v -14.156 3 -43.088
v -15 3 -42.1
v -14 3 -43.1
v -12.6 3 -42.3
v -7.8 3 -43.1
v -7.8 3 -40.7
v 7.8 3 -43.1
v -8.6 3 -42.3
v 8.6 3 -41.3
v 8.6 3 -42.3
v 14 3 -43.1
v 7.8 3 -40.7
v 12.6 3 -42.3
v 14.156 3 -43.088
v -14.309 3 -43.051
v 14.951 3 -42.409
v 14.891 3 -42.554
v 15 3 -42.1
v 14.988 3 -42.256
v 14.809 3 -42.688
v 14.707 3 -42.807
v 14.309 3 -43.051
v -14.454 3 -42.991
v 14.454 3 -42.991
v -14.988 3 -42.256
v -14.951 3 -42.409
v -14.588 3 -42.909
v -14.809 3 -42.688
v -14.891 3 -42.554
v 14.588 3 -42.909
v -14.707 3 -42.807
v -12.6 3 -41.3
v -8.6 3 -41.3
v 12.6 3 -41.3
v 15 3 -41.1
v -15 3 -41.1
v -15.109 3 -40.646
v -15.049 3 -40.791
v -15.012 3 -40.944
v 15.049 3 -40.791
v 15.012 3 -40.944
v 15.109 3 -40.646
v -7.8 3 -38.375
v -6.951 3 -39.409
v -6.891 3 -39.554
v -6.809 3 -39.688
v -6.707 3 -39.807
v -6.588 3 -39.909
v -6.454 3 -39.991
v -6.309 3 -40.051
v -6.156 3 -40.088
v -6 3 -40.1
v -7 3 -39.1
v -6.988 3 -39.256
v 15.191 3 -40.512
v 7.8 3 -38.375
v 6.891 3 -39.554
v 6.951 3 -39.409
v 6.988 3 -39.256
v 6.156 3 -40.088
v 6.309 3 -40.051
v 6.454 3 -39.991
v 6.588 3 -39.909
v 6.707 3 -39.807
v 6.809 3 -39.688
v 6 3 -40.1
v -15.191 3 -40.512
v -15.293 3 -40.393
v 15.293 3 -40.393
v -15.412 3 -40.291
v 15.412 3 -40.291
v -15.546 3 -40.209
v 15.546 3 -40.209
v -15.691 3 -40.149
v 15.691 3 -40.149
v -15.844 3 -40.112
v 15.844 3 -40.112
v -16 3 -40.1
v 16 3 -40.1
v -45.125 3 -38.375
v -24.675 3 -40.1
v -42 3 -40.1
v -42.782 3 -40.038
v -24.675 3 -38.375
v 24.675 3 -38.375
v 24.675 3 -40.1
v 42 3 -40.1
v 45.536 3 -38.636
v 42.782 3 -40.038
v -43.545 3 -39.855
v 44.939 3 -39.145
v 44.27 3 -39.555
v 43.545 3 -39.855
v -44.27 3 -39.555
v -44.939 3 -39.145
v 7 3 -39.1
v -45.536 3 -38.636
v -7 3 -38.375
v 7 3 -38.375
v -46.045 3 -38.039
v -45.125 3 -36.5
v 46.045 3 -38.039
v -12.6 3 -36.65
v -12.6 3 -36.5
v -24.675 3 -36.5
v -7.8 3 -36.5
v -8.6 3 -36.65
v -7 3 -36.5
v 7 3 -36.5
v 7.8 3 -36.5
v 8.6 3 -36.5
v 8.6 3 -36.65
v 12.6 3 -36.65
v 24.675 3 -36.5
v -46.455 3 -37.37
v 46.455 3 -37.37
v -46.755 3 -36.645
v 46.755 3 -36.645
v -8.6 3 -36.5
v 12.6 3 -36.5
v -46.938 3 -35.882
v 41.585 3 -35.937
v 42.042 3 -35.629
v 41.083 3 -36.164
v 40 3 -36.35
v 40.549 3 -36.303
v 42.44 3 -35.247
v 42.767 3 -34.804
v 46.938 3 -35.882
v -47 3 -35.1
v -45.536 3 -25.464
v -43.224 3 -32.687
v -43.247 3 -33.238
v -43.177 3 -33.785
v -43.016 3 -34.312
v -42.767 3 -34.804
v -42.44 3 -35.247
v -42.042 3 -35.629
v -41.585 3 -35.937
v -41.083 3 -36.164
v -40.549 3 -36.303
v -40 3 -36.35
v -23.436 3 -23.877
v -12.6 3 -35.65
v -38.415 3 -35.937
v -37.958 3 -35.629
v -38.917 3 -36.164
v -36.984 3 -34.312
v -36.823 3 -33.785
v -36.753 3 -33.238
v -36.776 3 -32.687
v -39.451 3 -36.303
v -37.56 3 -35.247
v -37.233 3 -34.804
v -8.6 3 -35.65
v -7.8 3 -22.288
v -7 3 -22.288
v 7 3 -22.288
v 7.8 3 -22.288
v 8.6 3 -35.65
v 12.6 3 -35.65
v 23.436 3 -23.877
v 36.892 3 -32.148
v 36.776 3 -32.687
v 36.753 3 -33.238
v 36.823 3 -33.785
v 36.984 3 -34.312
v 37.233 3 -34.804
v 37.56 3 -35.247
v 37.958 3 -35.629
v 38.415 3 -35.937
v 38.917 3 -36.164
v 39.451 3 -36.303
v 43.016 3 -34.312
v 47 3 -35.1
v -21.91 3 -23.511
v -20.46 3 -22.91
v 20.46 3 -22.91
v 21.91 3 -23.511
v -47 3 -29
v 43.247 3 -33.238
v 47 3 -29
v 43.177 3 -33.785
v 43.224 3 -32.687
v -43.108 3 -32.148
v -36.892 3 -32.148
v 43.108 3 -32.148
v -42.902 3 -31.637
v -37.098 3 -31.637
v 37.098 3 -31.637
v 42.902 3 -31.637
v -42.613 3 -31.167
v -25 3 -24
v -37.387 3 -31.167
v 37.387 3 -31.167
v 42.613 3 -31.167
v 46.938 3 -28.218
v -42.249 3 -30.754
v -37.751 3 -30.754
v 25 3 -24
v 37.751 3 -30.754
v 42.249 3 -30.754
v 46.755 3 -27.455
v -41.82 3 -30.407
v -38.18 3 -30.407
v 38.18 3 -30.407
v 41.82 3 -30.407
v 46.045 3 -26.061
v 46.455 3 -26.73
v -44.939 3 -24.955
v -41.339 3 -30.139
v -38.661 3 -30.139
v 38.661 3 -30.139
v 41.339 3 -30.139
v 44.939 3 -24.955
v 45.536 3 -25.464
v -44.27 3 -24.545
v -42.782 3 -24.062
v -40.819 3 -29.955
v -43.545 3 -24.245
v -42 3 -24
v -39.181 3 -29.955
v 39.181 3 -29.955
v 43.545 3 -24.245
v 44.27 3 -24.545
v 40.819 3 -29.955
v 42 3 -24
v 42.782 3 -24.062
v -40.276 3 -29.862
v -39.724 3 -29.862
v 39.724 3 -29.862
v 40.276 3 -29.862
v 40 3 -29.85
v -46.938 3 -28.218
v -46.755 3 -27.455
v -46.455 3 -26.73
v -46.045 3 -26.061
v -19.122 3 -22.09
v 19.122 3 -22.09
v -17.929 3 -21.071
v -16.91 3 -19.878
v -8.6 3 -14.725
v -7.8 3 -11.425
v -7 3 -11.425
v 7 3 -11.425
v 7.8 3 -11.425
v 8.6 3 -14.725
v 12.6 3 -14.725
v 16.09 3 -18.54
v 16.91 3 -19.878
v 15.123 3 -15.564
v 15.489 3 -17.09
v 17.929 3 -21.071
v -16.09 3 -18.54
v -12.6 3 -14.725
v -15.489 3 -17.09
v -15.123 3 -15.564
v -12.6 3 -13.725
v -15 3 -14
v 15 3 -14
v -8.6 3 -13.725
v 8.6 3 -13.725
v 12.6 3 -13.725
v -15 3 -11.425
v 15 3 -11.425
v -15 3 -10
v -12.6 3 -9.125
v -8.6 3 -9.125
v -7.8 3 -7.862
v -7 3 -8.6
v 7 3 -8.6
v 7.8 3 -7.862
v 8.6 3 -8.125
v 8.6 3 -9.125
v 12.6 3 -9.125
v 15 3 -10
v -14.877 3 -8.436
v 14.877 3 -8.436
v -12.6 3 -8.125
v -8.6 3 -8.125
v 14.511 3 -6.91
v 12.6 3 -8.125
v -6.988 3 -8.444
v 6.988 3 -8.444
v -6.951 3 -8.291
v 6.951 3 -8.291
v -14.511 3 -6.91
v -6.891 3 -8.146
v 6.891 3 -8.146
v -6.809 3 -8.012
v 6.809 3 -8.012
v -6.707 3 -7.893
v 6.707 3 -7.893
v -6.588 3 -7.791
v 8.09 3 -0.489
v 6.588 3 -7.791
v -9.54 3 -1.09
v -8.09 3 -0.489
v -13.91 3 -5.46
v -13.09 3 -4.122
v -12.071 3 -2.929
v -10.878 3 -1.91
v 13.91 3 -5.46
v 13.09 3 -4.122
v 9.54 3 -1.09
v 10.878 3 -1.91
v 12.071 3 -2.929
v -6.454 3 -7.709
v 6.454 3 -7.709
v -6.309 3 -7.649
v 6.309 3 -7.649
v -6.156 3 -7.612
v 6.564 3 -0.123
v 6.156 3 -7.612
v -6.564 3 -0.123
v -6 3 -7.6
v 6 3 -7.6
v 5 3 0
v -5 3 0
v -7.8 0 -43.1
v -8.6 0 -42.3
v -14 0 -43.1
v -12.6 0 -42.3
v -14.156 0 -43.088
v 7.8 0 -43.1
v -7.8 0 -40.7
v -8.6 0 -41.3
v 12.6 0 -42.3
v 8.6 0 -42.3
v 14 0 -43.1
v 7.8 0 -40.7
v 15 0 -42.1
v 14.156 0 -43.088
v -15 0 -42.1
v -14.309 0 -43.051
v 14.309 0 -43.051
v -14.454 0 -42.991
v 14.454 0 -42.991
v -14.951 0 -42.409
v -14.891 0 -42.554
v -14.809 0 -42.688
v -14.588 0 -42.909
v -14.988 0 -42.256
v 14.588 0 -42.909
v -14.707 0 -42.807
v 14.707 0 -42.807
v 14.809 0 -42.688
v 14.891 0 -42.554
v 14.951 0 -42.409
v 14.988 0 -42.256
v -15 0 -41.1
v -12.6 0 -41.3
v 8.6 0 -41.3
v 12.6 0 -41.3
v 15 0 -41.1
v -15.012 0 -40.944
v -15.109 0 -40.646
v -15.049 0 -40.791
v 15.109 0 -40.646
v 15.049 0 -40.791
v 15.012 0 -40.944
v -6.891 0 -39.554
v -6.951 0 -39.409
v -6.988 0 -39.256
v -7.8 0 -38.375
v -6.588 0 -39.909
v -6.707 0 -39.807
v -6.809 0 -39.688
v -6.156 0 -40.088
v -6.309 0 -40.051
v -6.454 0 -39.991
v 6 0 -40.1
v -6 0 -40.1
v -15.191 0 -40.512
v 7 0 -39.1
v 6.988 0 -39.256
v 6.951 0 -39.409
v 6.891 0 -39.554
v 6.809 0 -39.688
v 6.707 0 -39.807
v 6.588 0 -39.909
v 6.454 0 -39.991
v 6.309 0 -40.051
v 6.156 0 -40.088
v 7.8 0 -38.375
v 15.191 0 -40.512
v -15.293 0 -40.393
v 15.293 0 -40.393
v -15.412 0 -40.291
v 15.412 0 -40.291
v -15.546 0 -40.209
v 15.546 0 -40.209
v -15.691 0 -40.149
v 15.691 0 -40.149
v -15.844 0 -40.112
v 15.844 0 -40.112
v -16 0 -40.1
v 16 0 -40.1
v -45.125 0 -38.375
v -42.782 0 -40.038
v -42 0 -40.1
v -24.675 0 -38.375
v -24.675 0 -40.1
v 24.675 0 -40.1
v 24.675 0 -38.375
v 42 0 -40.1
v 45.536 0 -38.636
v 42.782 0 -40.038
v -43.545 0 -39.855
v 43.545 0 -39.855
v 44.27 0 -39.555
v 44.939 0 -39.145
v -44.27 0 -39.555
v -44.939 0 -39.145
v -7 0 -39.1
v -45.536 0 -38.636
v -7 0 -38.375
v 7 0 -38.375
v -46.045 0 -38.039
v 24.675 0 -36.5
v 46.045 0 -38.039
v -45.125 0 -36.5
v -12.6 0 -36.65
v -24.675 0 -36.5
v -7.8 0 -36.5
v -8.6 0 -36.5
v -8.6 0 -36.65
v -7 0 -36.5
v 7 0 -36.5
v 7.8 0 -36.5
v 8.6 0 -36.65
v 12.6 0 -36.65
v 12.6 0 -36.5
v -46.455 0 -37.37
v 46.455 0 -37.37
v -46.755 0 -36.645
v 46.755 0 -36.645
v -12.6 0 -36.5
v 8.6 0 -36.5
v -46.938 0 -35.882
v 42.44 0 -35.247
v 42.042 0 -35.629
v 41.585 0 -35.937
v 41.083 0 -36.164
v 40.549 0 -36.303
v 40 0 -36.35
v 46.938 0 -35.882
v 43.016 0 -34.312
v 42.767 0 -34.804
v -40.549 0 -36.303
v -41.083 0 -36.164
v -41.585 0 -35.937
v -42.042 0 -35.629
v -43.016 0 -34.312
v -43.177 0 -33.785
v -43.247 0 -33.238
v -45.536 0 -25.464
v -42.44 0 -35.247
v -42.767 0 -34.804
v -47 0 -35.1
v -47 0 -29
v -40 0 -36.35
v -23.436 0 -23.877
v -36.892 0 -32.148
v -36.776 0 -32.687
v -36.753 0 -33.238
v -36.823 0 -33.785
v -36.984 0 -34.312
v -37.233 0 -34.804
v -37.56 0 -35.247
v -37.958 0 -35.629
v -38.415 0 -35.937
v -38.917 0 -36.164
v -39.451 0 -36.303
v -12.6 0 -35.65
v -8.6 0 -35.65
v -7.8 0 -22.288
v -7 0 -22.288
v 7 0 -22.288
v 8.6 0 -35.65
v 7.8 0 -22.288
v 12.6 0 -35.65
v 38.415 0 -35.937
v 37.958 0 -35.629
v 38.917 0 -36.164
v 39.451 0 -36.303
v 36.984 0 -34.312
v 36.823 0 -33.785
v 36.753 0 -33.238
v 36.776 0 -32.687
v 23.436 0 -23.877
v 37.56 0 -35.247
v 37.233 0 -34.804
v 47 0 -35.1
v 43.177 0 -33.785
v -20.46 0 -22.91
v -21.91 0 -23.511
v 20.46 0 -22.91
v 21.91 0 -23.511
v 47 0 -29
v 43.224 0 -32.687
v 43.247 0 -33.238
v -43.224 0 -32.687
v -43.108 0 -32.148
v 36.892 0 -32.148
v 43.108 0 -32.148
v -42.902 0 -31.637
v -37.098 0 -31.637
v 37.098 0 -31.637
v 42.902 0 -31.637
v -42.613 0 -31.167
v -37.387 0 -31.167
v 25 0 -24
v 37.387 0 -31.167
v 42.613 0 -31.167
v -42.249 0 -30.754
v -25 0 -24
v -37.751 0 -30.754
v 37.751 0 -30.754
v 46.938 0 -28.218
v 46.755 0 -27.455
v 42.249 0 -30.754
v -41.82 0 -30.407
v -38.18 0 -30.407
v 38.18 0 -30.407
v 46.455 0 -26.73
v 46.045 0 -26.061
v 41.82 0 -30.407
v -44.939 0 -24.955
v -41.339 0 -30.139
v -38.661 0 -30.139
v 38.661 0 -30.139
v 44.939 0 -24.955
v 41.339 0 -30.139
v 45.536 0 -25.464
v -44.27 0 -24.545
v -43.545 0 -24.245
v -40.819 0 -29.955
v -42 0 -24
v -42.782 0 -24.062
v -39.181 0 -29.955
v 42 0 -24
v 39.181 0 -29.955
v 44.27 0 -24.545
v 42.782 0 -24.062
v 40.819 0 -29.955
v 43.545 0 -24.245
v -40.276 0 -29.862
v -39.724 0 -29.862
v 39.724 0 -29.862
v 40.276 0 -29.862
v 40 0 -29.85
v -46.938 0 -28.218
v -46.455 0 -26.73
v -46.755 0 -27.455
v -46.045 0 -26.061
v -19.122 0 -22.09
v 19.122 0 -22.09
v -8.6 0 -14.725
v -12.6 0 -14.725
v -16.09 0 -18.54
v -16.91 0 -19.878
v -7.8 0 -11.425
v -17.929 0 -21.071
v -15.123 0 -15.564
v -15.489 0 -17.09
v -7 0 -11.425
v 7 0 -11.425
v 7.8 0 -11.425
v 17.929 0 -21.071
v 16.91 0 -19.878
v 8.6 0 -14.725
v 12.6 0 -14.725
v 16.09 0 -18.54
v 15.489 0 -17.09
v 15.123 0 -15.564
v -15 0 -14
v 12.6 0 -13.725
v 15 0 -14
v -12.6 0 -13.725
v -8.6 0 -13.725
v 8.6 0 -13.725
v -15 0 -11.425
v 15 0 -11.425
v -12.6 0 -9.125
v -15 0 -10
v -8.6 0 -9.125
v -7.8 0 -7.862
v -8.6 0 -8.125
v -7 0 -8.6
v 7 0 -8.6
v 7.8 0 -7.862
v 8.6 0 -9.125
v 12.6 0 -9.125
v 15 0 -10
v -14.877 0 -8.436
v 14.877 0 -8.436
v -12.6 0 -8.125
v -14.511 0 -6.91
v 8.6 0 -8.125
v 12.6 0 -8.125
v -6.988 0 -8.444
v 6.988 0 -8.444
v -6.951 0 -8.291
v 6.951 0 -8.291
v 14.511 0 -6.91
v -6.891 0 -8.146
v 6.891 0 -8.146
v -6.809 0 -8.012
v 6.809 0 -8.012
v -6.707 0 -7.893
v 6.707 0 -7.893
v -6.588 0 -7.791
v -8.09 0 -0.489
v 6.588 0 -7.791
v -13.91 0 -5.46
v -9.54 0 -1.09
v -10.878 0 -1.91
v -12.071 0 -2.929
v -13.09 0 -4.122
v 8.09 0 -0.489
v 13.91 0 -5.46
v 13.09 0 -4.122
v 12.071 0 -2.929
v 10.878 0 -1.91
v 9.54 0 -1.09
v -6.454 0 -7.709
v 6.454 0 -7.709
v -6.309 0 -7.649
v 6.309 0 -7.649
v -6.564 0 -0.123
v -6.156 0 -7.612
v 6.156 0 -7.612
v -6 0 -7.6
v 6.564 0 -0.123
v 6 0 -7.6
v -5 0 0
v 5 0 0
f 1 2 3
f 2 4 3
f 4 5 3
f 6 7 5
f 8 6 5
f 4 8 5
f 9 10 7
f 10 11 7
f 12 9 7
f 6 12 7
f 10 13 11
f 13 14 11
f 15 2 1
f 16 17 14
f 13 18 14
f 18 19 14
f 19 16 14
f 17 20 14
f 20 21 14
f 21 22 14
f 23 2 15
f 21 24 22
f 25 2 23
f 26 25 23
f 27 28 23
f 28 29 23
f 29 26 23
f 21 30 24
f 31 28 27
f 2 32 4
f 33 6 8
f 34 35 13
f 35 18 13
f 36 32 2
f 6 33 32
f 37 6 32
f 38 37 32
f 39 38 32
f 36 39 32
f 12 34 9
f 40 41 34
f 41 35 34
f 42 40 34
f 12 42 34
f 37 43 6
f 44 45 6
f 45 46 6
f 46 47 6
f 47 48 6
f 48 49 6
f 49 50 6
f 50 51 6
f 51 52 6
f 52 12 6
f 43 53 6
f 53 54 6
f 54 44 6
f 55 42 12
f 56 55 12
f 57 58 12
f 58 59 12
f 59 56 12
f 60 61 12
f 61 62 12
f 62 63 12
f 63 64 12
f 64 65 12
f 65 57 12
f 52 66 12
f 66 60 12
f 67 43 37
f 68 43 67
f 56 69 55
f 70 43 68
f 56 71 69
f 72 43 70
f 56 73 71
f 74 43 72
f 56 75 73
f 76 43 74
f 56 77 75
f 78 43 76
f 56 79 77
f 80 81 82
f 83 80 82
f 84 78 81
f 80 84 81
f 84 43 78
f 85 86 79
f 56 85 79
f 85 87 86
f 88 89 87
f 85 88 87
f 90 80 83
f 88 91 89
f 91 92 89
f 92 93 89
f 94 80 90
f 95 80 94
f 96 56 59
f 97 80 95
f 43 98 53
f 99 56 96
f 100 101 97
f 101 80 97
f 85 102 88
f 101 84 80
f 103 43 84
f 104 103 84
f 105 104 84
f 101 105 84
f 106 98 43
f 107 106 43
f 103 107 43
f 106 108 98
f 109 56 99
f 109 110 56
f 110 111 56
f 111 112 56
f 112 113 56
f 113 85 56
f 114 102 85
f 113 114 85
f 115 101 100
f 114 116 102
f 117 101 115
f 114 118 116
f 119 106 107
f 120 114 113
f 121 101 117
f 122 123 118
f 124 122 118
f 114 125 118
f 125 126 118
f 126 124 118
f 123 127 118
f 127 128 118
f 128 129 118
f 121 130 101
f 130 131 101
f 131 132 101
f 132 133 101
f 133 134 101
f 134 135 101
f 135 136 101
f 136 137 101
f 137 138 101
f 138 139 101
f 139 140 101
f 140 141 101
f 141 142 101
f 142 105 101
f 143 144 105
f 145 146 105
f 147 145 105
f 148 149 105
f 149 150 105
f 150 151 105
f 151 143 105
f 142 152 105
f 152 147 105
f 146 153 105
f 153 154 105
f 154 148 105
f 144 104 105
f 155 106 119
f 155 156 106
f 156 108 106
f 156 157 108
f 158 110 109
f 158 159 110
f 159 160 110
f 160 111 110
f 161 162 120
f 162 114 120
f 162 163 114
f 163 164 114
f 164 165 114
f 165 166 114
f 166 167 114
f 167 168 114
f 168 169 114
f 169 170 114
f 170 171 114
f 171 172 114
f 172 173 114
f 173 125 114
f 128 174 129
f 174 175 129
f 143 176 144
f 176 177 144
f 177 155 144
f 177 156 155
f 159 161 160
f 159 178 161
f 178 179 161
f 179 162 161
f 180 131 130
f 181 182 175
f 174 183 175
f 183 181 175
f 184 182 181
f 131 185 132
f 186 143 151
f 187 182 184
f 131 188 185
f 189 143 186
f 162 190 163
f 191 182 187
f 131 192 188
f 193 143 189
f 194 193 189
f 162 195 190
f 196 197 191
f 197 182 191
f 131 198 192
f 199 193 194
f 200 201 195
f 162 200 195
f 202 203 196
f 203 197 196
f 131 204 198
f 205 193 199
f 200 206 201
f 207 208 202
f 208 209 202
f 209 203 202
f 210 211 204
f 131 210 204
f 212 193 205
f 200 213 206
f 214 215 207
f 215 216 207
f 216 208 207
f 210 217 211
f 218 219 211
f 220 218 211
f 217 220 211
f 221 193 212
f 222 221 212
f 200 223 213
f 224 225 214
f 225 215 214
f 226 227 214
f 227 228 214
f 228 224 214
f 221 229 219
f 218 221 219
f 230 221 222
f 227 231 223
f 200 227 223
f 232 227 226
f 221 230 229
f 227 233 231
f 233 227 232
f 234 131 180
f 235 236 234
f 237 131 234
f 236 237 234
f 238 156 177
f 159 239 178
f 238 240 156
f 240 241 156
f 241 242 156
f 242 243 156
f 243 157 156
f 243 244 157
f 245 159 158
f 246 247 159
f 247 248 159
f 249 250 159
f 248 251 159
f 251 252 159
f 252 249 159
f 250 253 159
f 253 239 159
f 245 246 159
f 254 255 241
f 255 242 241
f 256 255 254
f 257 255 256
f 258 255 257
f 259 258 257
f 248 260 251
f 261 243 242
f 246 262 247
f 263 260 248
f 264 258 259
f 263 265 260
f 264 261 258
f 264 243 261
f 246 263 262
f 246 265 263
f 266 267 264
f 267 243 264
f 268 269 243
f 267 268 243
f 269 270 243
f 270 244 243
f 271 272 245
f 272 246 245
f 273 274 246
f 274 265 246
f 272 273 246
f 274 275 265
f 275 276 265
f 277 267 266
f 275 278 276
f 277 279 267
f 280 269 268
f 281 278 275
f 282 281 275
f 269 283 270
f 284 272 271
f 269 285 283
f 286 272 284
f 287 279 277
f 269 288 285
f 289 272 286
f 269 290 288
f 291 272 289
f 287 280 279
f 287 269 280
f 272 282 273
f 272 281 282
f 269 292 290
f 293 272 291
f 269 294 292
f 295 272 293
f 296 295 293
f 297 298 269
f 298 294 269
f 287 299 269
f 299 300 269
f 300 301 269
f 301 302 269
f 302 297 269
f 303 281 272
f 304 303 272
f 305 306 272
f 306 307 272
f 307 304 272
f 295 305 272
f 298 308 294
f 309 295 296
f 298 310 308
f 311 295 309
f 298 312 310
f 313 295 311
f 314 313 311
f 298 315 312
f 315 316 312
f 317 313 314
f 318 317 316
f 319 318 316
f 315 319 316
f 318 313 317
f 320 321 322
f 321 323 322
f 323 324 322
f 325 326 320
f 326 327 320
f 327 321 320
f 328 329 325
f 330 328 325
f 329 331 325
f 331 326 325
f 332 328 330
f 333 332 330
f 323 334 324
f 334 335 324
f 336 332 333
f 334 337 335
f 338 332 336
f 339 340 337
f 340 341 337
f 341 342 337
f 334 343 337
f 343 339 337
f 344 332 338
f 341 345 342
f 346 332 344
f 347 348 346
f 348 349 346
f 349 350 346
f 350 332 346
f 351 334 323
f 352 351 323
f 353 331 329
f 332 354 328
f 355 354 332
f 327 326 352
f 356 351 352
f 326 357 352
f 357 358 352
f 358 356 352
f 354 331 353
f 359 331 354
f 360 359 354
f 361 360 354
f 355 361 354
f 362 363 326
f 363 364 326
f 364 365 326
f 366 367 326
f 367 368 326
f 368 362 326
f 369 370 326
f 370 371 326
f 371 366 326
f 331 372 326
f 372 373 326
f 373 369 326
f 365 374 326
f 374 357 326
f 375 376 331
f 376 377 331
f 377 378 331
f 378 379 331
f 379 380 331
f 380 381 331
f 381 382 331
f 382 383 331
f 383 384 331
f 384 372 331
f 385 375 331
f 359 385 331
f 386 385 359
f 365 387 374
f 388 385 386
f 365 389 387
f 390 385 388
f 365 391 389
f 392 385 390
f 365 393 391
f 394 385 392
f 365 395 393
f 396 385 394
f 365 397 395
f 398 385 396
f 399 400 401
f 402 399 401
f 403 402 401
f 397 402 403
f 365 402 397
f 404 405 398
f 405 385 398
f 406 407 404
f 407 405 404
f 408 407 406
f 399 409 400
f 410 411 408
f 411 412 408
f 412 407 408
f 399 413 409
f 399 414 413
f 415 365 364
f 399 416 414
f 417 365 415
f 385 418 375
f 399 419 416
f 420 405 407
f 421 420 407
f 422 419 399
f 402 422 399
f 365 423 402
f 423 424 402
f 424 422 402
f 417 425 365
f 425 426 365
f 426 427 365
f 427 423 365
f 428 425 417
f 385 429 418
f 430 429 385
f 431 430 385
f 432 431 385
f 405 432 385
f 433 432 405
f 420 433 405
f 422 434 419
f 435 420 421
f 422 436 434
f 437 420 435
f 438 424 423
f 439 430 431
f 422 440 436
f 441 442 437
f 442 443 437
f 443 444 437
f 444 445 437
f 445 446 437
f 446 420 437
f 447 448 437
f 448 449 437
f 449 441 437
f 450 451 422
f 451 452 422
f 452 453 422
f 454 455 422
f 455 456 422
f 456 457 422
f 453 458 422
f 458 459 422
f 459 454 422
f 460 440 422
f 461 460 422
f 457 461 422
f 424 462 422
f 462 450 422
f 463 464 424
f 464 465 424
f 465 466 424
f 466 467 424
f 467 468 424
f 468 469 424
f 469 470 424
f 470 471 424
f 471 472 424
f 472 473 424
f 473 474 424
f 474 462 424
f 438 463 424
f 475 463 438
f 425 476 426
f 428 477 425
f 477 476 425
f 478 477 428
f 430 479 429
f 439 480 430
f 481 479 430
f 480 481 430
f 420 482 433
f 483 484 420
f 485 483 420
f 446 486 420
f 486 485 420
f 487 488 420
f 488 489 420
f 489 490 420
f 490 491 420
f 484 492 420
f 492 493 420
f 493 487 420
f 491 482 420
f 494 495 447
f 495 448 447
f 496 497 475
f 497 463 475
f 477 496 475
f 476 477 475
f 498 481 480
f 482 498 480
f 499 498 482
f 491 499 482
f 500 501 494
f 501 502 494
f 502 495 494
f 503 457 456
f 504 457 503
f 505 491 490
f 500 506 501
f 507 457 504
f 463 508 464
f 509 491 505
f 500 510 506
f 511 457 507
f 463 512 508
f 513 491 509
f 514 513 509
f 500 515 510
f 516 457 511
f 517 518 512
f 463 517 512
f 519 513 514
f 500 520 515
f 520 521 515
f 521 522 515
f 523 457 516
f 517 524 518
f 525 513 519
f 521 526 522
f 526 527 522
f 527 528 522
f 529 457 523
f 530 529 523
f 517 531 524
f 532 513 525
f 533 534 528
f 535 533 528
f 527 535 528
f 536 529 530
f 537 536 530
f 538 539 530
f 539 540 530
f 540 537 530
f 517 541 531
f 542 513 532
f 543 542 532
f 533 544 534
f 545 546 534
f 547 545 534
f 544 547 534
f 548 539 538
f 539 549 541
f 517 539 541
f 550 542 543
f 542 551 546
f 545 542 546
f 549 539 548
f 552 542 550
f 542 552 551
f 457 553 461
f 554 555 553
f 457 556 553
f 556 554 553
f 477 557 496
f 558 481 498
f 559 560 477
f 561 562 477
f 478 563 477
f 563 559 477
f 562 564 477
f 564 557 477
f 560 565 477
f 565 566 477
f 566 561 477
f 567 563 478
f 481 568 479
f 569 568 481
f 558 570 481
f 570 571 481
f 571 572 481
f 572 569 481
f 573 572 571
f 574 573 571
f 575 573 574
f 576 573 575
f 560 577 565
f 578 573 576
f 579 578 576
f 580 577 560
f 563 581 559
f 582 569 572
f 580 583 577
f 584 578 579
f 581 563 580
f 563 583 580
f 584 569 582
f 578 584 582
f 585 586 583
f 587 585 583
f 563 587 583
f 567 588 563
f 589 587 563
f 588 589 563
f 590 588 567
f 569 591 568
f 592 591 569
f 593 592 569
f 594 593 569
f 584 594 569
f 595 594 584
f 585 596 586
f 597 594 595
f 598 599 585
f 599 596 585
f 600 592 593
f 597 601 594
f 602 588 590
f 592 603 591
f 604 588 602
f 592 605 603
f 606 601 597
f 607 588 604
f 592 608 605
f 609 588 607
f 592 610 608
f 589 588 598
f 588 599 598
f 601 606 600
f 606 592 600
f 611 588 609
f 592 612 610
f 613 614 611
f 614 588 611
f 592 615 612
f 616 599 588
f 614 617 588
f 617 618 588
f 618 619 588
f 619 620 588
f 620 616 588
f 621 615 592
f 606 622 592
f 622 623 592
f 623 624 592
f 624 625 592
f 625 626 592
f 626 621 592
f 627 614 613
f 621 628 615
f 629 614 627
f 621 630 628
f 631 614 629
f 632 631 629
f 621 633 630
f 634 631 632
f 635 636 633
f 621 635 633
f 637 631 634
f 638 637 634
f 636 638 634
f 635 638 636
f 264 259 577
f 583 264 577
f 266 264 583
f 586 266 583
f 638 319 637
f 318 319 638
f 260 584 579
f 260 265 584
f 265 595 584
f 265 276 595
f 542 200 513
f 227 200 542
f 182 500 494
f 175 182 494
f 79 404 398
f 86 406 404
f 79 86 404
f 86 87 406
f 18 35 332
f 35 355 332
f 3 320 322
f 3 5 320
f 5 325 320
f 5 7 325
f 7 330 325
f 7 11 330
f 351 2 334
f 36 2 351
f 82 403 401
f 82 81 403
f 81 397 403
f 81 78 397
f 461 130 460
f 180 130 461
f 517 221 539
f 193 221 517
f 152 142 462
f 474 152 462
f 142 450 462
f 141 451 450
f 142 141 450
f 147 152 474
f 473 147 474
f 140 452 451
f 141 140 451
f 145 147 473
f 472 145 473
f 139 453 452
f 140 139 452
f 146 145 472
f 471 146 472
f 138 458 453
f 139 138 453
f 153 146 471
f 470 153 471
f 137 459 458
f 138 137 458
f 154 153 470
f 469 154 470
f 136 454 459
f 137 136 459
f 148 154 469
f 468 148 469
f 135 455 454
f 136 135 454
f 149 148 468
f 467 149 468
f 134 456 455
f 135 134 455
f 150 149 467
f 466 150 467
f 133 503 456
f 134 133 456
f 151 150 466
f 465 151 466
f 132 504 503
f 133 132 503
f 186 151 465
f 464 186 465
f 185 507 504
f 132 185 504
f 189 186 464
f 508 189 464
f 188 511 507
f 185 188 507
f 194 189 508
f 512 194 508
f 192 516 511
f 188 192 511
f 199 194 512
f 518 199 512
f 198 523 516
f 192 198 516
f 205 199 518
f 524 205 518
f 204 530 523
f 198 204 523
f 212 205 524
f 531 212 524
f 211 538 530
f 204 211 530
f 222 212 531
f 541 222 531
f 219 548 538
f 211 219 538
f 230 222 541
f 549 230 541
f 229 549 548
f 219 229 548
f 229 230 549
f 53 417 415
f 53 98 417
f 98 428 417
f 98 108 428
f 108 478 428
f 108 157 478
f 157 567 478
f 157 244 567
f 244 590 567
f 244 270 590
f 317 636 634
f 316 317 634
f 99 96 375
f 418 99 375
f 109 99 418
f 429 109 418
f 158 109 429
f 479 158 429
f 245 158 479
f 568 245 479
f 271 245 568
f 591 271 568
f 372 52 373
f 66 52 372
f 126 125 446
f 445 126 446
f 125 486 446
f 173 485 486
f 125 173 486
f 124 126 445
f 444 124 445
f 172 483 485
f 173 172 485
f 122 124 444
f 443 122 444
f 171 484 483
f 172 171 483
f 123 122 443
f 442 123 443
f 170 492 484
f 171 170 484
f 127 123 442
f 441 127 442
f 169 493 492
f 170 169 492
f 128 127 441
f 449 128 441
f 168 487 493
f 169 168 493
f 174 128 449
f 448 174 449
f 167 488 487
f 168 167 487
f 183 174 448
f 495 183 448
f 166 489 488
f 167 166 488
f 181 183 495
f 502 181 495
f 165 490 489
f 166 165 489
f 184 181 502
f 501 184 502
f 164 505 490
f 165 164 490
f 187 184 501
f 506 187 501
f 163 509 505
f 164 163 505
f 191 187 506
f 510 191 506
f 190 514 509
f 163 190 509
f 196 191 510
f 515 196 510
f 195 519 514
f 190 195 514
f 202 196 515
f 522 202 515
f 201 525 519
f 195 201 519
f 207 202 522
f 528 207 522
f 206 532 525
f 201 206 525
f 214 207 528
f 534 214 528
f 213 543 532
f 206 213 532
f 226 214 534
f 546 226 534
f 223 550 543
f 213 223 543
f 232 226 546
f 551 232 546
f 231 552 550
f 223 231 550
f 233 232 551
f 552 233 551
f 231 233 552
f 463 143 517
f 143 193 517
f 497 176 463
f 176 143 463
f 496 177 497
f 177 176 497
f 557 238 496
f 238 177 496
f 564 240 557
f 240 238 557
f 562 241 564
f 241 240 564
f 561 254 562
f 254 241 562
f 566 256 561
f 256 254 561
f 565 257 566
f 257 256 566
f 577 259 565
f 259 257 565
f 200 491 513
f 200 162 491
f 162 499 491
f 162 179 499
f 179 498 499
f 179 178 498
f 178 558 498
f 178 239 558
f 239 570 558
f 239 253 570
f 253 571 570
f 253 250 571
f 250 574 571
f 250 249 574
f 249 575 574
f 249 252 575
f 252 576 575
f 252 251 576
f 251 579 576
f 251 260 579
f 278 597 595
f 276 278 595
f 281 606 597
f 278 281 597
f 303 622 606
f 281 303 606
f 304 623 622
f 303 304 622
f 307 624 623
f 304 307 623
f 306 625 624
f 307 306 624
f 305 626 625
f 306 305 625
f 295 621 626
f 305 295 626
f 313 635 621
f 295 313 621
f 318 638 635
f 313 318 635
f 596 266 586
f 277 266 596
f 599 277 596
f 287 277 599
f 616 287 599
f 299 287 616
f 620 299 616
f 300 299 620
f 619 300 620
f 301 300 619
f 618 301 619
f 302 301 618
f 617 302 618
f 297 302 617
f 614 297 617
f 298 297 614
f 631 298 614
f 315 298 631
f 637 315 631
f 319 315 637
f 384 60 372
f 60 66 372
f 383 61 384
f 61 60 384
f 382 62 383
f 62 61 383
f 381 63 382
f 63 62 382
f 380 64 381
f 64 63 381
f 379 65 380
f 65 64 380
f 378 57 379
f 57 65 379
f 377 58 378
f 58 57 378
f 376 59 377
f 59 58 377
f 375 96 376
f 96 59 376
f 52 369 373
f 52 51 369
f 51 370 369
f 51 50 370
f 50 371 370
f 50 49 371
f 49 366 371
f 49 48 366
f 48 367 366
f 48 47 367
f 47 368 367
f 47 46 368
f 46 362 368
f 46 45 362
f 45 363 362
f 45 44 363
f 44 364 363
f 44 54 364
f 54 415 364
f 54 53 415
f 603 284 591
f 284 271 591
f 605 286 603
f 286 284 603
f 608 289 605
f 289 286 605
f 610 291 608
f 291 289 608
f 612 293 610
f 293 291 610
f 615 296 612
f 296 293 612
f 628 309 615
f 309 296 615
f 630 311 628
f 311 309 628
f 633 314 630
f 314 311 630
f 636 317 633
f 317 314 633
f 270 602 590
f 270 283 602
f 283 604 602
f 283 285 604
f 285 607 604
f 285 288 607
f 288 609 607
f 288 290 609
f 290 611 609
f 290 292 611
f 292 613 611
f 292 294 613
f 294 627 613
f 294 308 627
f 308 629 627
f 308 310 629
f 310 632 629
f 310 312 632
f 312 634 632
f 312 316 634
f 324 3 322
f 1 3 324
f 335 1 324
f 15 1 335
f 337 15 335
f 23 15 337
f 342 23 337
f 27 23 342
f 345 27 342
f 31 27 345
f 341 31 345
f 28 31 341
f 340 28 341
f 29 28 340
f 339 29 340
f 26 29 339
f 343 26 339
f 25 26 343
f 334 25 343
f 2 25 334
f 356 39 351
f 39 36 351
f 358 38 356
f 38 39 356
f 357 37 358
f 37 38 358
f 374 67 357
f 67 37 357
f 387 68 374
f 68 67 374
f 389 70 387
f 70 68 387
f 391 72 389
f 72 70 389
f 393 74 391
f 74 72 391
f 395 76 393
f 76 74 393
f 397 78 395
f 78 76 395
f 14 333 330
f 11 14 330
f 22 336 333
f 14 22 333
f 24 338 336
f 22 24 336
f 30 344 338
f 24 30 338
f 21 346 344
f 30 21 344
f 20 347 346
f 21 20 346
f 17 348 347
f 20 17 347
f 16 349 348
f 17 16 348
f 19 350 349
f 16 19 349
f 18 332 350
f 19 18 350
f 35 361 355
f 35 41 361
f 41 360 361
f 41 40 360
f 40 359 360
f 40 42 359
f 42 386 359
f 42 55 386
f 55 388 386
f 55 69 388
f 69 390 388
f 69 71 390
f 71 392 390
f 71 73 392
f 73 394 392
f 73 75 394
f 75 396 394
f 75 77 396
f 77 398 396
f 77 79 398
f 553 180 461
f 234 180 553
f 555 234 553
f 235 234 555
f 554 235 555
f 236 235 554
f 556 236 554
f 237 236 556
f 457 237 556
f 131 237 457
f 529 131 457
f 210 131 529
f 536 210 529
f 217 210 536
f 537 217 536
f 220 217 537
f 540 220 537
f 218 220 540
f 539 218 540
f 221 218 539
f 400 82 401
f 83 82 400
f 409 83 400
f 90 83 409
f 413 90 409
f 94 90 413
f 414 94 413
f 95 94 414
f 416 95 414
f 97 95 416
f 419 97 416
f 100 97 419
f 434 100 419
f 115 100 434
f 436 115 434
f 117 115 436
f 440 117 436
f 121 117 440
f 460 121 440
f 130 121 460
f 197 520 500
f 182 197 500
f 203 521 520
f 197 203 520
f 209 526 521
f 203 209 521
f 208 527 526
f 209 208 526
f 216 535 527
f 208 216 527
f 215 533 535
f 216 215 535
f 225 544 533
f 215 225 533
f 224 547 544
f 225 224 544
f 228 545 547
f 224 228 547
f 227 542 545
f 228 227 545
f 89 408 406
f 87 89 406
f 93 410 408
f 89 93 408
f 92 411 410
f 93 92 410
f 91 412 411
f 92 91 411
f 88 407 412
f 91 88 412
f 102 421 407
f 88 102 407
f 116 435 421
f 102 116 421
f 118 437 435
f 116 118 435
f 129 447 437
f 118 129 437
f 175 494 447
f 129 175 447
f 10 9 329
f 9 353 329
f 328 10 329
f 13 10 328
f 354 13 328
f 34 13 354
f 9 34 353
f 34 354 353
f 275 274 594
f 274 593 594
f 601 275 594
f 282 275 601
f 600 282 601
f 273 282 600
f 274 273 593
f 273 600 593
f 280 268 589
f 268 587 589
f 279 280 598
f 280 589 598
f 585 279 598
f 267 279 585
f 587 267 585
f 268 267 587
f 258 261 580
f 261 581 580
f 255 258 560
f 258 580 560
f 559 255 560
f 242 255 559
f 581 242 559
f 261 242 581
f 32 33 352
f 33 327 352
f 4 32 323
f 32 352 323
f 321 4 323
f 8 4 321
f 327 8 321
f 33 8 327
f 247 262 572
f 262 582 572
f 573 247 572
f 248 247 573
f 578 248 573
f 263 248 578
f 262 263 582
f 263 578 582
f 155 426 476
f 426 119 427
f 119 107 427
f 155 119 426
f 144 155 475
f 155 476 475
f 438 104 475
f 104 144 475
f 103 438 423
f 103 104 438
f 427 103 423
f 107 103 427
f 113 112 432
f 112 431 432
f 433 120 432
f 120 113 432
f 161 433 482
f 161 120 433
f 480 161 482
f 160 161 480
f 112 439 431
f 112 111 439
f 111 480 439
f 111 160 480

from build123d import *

# Parameters (mm, degrees)
SKETCH1_R           = 3.25
SKETCH1_W           = 14
SKETCH1_H           = 32.5
BOSS_EXTRUDE1_DEPTH = 3
FILLET1_R           = 10
FILLET2_R           = 1
FILLET3_R           = 5
CUT_EXTRUDE1_REACH  = 65.841
SKETCH2_W           = 4
SKETCH2_H           = 1


with BuildPart() as part:
    # Sketch1 → Boss-Extrude1 (new body)
    with BuildSketch(Plane(origin=(0, 0, 0), x_dir=(1, 0, 0), z_dir=(0, 1, 0))):
        Polygon((-47, 40.1), (-15, 40.1), (-15, 43.1), (15, 43.1), (15, 40.1), (47, 40.1), (47, 24), (15, 24), (15, 0), (-15, 0), (-15, 24), (-47, 24), align=None)
        with Locations(Location((40, 33.1, 0), (0, 0, 270))):
            Circle(SKETCH1_R, mode=Mode.SUBTRACT)
        with Locations(Location((-40, 33.1, 0), (0, 0, 90))):
            Circle(SKETCH1_R, mode=Mode.SUBTRACT)
        with Locations((0, 23.85)):
            Rectangle(SKETCH1_W, SKETCH1_H, mode=Mode.SUBTRACT)
    extrude(amount=BOSS_EXTRUDE1_DEPTH)

    # Fillet1
    fillet1_edges = [part.edges().sort_by_distance(p)[0] for p in [
        (-15, 1.5, -24),
        (15, 1.5, -24),
        (15, 1.5, 0),
        (-15, 1.5, 0),
    ]]
    fillet(fillet1_edges, radius=FILLET1_R)

    # Fillet2
    fillet2_edges = [part.edges().sort_by_distance(p)[0] for p in [
        (-15, 1.5, -40.1),
        (-15, 1.5, -43.1),
        (15, 1.5, -43.1),
        (15, 1.5, -40.1),
        (-7, 1.5, -40.1),
        (-7, 1.5, -7.6),
        (7, 1.5, -7.6),
        (7, 1.5, -40.1),
    ]]
    fillet(fillet2_edges, radius=FILLET2_R)

    # Fillet3
    fillet3_edges = [part.edges().sort_by_distance(p)[0] for p in [
        (-47, 1.5, -24),
        (-47, 1.5, -40.1),
        (47, 1.5, -40.1),
        (47, 1.5, -24),
    ]]
    fillet(fillet3_edges, radius=FILLET3_R)

    # Sketch2 → Cut-Extrude1 (cut, up to next)
    with BuildSketch(Plane(origin=(0, 3, 0), x_dir=(1, 0, 0), z_dir=(0, 1, 0)), mode=Mode.PRIVATE) as cut_extrude1_sk1:
        with Locations((10.6, 14.225)):
            Rectangle(SKETCH2_W, SKETCH2_H)
    cut_extrude1_tool1 = extrude(cut_extrude1_sk1.sketch, amount=-CUT_EXTRUDE1_REACH, mode=Mode.PRIVATE) & part.part
    # Sketch2 → Cut-Extrude1 (cut, up to next)
    with BuildSketch(Plane(origin=(0, 3, 0), x_dir=(1, 0, 0), z_dir=(0, 1, 0)), mode=Mode.PRIVATE) as cut_extrude1_sk2:
        with Locations((10.6, 41.8)):
            Rectangle(SKETCH2_W, SKETCH2_H)
    cut_extrude1_tool2 = extrude(cut_extrude1_sk2.sketch, amount=-CUT_EXTRUDE1_REACH, mode=Mode.PRIVATE) & part.part
    # Sketch2 → Cut-Extrude1 (cut, up to next)
    with BuildSketch(Plane(origin=(0, 3, 0), x_dir=(1, 0, 0), z_dir=(0, 1, 0)), mode=Mode.PRIVATE) as cut_extrude1_sk3:
        with Locations((-10.6, 41.8)):
            Rectangle(SKETCH2_W, SKETCH2_H)
    cut_extrude1_tool3 = extrude(cut_extrude1_sk3.sketch, amount=-CUT_EXTRUDE1_REACH, mode=Mode.PRIVATE) & part.part
    # Sketch2 → Cut-Extrude1 (cut, up to next)
    with BuildSketch(Plane(origin=(0, 3, 0), x_dir=(1, 0, 0), z_dir=(0, 1, 0)), mode=Mode.PRIVATE) as cut_extrude1_sk4:
        with Locations((-10.6, 36.15)):
            Rectangle(SKETCH2_W, SKETCH2_H)
    cut_extrude1_tool4 = extrude(cut_extrude1_sk4.sketch, amount=-CUT_EXTRUDE1_REACH, mode=Mode.PRIVATE) & part.part
    # Sketch2 → Cut-Extrude1 (cut, up to next)
    with BuildSketch(Plane(origin=(0, 3, 0), x_dir=(1, 0, 0), z_dir=(0, 1, 0)), mode=Mode.PRIVATE) as cut_extrude1_sk5:
        with Locations((10.6, 36.15)):
            Rectangle(SKETCH2_W, SKETCH2_H)
    cut_extrude1_tool5 = extrude(cut_extrude1_sk5.sketch, amount=-CUT_EXTRUDE1_REACH, mode=Mode.PRIVATE) & part.part
    # Sketch2 → Cut-Extrude1 (cut, up to next)
    with BuildSketch(Plane(origin=(0, 3, 0), x_dir=(1, 0, 0), z_dir=(0, 1, 0)), mode=Mode.PRIVATE) as cut_extrude1_sk6:
        with Locations((-10.6, 14.225)):
            Rectangle(SKETCH2_W, SKETCH2_H)
    cut_extrude1_tool6 = extrude(cut_extrude1_sk6.sketch, amount=-CUT_EXTRUDE1_REACH, mode=Mode.PRIVATE) & part.part
    # Sketch2 → Cut-Extrude1 (cut, up to next)
    with BuildSketch(Plane(origin=(0, 3, 0), x_dir=(1, 0, 0), z_dir=(0, 1, 0)), mode=Mode.PRIVATE) as cut_extrude1_sk7:
        with Locations((-10.6, 8.625)):
            Rectangle(SKETCH2_W, SKETCH2_H)
    cut_extrude1_tool7 = extrude(cut_extrude1_sk7.sketch, amount=-CUT_EXTRUDE1_REACH, mode=Mode.PRIVATE) & part.part
    # Sketch2 → Cut-Extrude1 (cut, up to next)
    with BuildSketch(Plane(origin=(0, 3, 0), x_dir=(1, 0, 0), z_dir=(0, 1, 0)), mode=Mode.PRIVATE) as cut_extrude1_sk8:
        with Locations((10.6, 8.625)):
            Rectangle(SKETCH2_W, SKETCH2_H)
    cut_extrude1_tool8 = extrude(cut_extrude1_sk8.sketch, amount=-CUT_EXTRUDE1_REACH, mode=Mode.PRIVATE) & part.part
    add(cut_extrude1_tool1.solids().sort_by_distance((10.6, 3, -14.225))[0], mode=Mode.SUBTRACT)
    add(cut_extrude1_tool2.solids().sort_by_distance((10.6, 3, -41.8))[0], mode=Mode.SUBTRACT)
    add(cut_extrude1_tool3.solids().sort_by_distance((-10.6, 3, -41.8))[0], mode=Mode.SUBTRACT)
    add(cut_extrude1_tool4.solids().sort_by_distance((-10.6, 3, -36.15))[0], mode=Mode.SUBTRACT)
    add(cut_extrude1_tool5.solids().sort_by_distance((10.6, 3, -36.15))[0], mode=Mode.SUBTRACT)
    add(cut_extrude1_tool6.solids().sort_by_distance((-10.6, 3, -14.225))[0], mode=Mode.SUBTRACT)
    add(cut_extrude1_tool7.solids().sort_by_distance((-10.6, 3, -8.625))[0], mode=Mode.SUBTRACT)
    add(cut_extrude1_tool8.solids().sort_by_distance((10.6, 3, -8.625))[0], mode=Mode.SUBTRACT)


solid = part.part
